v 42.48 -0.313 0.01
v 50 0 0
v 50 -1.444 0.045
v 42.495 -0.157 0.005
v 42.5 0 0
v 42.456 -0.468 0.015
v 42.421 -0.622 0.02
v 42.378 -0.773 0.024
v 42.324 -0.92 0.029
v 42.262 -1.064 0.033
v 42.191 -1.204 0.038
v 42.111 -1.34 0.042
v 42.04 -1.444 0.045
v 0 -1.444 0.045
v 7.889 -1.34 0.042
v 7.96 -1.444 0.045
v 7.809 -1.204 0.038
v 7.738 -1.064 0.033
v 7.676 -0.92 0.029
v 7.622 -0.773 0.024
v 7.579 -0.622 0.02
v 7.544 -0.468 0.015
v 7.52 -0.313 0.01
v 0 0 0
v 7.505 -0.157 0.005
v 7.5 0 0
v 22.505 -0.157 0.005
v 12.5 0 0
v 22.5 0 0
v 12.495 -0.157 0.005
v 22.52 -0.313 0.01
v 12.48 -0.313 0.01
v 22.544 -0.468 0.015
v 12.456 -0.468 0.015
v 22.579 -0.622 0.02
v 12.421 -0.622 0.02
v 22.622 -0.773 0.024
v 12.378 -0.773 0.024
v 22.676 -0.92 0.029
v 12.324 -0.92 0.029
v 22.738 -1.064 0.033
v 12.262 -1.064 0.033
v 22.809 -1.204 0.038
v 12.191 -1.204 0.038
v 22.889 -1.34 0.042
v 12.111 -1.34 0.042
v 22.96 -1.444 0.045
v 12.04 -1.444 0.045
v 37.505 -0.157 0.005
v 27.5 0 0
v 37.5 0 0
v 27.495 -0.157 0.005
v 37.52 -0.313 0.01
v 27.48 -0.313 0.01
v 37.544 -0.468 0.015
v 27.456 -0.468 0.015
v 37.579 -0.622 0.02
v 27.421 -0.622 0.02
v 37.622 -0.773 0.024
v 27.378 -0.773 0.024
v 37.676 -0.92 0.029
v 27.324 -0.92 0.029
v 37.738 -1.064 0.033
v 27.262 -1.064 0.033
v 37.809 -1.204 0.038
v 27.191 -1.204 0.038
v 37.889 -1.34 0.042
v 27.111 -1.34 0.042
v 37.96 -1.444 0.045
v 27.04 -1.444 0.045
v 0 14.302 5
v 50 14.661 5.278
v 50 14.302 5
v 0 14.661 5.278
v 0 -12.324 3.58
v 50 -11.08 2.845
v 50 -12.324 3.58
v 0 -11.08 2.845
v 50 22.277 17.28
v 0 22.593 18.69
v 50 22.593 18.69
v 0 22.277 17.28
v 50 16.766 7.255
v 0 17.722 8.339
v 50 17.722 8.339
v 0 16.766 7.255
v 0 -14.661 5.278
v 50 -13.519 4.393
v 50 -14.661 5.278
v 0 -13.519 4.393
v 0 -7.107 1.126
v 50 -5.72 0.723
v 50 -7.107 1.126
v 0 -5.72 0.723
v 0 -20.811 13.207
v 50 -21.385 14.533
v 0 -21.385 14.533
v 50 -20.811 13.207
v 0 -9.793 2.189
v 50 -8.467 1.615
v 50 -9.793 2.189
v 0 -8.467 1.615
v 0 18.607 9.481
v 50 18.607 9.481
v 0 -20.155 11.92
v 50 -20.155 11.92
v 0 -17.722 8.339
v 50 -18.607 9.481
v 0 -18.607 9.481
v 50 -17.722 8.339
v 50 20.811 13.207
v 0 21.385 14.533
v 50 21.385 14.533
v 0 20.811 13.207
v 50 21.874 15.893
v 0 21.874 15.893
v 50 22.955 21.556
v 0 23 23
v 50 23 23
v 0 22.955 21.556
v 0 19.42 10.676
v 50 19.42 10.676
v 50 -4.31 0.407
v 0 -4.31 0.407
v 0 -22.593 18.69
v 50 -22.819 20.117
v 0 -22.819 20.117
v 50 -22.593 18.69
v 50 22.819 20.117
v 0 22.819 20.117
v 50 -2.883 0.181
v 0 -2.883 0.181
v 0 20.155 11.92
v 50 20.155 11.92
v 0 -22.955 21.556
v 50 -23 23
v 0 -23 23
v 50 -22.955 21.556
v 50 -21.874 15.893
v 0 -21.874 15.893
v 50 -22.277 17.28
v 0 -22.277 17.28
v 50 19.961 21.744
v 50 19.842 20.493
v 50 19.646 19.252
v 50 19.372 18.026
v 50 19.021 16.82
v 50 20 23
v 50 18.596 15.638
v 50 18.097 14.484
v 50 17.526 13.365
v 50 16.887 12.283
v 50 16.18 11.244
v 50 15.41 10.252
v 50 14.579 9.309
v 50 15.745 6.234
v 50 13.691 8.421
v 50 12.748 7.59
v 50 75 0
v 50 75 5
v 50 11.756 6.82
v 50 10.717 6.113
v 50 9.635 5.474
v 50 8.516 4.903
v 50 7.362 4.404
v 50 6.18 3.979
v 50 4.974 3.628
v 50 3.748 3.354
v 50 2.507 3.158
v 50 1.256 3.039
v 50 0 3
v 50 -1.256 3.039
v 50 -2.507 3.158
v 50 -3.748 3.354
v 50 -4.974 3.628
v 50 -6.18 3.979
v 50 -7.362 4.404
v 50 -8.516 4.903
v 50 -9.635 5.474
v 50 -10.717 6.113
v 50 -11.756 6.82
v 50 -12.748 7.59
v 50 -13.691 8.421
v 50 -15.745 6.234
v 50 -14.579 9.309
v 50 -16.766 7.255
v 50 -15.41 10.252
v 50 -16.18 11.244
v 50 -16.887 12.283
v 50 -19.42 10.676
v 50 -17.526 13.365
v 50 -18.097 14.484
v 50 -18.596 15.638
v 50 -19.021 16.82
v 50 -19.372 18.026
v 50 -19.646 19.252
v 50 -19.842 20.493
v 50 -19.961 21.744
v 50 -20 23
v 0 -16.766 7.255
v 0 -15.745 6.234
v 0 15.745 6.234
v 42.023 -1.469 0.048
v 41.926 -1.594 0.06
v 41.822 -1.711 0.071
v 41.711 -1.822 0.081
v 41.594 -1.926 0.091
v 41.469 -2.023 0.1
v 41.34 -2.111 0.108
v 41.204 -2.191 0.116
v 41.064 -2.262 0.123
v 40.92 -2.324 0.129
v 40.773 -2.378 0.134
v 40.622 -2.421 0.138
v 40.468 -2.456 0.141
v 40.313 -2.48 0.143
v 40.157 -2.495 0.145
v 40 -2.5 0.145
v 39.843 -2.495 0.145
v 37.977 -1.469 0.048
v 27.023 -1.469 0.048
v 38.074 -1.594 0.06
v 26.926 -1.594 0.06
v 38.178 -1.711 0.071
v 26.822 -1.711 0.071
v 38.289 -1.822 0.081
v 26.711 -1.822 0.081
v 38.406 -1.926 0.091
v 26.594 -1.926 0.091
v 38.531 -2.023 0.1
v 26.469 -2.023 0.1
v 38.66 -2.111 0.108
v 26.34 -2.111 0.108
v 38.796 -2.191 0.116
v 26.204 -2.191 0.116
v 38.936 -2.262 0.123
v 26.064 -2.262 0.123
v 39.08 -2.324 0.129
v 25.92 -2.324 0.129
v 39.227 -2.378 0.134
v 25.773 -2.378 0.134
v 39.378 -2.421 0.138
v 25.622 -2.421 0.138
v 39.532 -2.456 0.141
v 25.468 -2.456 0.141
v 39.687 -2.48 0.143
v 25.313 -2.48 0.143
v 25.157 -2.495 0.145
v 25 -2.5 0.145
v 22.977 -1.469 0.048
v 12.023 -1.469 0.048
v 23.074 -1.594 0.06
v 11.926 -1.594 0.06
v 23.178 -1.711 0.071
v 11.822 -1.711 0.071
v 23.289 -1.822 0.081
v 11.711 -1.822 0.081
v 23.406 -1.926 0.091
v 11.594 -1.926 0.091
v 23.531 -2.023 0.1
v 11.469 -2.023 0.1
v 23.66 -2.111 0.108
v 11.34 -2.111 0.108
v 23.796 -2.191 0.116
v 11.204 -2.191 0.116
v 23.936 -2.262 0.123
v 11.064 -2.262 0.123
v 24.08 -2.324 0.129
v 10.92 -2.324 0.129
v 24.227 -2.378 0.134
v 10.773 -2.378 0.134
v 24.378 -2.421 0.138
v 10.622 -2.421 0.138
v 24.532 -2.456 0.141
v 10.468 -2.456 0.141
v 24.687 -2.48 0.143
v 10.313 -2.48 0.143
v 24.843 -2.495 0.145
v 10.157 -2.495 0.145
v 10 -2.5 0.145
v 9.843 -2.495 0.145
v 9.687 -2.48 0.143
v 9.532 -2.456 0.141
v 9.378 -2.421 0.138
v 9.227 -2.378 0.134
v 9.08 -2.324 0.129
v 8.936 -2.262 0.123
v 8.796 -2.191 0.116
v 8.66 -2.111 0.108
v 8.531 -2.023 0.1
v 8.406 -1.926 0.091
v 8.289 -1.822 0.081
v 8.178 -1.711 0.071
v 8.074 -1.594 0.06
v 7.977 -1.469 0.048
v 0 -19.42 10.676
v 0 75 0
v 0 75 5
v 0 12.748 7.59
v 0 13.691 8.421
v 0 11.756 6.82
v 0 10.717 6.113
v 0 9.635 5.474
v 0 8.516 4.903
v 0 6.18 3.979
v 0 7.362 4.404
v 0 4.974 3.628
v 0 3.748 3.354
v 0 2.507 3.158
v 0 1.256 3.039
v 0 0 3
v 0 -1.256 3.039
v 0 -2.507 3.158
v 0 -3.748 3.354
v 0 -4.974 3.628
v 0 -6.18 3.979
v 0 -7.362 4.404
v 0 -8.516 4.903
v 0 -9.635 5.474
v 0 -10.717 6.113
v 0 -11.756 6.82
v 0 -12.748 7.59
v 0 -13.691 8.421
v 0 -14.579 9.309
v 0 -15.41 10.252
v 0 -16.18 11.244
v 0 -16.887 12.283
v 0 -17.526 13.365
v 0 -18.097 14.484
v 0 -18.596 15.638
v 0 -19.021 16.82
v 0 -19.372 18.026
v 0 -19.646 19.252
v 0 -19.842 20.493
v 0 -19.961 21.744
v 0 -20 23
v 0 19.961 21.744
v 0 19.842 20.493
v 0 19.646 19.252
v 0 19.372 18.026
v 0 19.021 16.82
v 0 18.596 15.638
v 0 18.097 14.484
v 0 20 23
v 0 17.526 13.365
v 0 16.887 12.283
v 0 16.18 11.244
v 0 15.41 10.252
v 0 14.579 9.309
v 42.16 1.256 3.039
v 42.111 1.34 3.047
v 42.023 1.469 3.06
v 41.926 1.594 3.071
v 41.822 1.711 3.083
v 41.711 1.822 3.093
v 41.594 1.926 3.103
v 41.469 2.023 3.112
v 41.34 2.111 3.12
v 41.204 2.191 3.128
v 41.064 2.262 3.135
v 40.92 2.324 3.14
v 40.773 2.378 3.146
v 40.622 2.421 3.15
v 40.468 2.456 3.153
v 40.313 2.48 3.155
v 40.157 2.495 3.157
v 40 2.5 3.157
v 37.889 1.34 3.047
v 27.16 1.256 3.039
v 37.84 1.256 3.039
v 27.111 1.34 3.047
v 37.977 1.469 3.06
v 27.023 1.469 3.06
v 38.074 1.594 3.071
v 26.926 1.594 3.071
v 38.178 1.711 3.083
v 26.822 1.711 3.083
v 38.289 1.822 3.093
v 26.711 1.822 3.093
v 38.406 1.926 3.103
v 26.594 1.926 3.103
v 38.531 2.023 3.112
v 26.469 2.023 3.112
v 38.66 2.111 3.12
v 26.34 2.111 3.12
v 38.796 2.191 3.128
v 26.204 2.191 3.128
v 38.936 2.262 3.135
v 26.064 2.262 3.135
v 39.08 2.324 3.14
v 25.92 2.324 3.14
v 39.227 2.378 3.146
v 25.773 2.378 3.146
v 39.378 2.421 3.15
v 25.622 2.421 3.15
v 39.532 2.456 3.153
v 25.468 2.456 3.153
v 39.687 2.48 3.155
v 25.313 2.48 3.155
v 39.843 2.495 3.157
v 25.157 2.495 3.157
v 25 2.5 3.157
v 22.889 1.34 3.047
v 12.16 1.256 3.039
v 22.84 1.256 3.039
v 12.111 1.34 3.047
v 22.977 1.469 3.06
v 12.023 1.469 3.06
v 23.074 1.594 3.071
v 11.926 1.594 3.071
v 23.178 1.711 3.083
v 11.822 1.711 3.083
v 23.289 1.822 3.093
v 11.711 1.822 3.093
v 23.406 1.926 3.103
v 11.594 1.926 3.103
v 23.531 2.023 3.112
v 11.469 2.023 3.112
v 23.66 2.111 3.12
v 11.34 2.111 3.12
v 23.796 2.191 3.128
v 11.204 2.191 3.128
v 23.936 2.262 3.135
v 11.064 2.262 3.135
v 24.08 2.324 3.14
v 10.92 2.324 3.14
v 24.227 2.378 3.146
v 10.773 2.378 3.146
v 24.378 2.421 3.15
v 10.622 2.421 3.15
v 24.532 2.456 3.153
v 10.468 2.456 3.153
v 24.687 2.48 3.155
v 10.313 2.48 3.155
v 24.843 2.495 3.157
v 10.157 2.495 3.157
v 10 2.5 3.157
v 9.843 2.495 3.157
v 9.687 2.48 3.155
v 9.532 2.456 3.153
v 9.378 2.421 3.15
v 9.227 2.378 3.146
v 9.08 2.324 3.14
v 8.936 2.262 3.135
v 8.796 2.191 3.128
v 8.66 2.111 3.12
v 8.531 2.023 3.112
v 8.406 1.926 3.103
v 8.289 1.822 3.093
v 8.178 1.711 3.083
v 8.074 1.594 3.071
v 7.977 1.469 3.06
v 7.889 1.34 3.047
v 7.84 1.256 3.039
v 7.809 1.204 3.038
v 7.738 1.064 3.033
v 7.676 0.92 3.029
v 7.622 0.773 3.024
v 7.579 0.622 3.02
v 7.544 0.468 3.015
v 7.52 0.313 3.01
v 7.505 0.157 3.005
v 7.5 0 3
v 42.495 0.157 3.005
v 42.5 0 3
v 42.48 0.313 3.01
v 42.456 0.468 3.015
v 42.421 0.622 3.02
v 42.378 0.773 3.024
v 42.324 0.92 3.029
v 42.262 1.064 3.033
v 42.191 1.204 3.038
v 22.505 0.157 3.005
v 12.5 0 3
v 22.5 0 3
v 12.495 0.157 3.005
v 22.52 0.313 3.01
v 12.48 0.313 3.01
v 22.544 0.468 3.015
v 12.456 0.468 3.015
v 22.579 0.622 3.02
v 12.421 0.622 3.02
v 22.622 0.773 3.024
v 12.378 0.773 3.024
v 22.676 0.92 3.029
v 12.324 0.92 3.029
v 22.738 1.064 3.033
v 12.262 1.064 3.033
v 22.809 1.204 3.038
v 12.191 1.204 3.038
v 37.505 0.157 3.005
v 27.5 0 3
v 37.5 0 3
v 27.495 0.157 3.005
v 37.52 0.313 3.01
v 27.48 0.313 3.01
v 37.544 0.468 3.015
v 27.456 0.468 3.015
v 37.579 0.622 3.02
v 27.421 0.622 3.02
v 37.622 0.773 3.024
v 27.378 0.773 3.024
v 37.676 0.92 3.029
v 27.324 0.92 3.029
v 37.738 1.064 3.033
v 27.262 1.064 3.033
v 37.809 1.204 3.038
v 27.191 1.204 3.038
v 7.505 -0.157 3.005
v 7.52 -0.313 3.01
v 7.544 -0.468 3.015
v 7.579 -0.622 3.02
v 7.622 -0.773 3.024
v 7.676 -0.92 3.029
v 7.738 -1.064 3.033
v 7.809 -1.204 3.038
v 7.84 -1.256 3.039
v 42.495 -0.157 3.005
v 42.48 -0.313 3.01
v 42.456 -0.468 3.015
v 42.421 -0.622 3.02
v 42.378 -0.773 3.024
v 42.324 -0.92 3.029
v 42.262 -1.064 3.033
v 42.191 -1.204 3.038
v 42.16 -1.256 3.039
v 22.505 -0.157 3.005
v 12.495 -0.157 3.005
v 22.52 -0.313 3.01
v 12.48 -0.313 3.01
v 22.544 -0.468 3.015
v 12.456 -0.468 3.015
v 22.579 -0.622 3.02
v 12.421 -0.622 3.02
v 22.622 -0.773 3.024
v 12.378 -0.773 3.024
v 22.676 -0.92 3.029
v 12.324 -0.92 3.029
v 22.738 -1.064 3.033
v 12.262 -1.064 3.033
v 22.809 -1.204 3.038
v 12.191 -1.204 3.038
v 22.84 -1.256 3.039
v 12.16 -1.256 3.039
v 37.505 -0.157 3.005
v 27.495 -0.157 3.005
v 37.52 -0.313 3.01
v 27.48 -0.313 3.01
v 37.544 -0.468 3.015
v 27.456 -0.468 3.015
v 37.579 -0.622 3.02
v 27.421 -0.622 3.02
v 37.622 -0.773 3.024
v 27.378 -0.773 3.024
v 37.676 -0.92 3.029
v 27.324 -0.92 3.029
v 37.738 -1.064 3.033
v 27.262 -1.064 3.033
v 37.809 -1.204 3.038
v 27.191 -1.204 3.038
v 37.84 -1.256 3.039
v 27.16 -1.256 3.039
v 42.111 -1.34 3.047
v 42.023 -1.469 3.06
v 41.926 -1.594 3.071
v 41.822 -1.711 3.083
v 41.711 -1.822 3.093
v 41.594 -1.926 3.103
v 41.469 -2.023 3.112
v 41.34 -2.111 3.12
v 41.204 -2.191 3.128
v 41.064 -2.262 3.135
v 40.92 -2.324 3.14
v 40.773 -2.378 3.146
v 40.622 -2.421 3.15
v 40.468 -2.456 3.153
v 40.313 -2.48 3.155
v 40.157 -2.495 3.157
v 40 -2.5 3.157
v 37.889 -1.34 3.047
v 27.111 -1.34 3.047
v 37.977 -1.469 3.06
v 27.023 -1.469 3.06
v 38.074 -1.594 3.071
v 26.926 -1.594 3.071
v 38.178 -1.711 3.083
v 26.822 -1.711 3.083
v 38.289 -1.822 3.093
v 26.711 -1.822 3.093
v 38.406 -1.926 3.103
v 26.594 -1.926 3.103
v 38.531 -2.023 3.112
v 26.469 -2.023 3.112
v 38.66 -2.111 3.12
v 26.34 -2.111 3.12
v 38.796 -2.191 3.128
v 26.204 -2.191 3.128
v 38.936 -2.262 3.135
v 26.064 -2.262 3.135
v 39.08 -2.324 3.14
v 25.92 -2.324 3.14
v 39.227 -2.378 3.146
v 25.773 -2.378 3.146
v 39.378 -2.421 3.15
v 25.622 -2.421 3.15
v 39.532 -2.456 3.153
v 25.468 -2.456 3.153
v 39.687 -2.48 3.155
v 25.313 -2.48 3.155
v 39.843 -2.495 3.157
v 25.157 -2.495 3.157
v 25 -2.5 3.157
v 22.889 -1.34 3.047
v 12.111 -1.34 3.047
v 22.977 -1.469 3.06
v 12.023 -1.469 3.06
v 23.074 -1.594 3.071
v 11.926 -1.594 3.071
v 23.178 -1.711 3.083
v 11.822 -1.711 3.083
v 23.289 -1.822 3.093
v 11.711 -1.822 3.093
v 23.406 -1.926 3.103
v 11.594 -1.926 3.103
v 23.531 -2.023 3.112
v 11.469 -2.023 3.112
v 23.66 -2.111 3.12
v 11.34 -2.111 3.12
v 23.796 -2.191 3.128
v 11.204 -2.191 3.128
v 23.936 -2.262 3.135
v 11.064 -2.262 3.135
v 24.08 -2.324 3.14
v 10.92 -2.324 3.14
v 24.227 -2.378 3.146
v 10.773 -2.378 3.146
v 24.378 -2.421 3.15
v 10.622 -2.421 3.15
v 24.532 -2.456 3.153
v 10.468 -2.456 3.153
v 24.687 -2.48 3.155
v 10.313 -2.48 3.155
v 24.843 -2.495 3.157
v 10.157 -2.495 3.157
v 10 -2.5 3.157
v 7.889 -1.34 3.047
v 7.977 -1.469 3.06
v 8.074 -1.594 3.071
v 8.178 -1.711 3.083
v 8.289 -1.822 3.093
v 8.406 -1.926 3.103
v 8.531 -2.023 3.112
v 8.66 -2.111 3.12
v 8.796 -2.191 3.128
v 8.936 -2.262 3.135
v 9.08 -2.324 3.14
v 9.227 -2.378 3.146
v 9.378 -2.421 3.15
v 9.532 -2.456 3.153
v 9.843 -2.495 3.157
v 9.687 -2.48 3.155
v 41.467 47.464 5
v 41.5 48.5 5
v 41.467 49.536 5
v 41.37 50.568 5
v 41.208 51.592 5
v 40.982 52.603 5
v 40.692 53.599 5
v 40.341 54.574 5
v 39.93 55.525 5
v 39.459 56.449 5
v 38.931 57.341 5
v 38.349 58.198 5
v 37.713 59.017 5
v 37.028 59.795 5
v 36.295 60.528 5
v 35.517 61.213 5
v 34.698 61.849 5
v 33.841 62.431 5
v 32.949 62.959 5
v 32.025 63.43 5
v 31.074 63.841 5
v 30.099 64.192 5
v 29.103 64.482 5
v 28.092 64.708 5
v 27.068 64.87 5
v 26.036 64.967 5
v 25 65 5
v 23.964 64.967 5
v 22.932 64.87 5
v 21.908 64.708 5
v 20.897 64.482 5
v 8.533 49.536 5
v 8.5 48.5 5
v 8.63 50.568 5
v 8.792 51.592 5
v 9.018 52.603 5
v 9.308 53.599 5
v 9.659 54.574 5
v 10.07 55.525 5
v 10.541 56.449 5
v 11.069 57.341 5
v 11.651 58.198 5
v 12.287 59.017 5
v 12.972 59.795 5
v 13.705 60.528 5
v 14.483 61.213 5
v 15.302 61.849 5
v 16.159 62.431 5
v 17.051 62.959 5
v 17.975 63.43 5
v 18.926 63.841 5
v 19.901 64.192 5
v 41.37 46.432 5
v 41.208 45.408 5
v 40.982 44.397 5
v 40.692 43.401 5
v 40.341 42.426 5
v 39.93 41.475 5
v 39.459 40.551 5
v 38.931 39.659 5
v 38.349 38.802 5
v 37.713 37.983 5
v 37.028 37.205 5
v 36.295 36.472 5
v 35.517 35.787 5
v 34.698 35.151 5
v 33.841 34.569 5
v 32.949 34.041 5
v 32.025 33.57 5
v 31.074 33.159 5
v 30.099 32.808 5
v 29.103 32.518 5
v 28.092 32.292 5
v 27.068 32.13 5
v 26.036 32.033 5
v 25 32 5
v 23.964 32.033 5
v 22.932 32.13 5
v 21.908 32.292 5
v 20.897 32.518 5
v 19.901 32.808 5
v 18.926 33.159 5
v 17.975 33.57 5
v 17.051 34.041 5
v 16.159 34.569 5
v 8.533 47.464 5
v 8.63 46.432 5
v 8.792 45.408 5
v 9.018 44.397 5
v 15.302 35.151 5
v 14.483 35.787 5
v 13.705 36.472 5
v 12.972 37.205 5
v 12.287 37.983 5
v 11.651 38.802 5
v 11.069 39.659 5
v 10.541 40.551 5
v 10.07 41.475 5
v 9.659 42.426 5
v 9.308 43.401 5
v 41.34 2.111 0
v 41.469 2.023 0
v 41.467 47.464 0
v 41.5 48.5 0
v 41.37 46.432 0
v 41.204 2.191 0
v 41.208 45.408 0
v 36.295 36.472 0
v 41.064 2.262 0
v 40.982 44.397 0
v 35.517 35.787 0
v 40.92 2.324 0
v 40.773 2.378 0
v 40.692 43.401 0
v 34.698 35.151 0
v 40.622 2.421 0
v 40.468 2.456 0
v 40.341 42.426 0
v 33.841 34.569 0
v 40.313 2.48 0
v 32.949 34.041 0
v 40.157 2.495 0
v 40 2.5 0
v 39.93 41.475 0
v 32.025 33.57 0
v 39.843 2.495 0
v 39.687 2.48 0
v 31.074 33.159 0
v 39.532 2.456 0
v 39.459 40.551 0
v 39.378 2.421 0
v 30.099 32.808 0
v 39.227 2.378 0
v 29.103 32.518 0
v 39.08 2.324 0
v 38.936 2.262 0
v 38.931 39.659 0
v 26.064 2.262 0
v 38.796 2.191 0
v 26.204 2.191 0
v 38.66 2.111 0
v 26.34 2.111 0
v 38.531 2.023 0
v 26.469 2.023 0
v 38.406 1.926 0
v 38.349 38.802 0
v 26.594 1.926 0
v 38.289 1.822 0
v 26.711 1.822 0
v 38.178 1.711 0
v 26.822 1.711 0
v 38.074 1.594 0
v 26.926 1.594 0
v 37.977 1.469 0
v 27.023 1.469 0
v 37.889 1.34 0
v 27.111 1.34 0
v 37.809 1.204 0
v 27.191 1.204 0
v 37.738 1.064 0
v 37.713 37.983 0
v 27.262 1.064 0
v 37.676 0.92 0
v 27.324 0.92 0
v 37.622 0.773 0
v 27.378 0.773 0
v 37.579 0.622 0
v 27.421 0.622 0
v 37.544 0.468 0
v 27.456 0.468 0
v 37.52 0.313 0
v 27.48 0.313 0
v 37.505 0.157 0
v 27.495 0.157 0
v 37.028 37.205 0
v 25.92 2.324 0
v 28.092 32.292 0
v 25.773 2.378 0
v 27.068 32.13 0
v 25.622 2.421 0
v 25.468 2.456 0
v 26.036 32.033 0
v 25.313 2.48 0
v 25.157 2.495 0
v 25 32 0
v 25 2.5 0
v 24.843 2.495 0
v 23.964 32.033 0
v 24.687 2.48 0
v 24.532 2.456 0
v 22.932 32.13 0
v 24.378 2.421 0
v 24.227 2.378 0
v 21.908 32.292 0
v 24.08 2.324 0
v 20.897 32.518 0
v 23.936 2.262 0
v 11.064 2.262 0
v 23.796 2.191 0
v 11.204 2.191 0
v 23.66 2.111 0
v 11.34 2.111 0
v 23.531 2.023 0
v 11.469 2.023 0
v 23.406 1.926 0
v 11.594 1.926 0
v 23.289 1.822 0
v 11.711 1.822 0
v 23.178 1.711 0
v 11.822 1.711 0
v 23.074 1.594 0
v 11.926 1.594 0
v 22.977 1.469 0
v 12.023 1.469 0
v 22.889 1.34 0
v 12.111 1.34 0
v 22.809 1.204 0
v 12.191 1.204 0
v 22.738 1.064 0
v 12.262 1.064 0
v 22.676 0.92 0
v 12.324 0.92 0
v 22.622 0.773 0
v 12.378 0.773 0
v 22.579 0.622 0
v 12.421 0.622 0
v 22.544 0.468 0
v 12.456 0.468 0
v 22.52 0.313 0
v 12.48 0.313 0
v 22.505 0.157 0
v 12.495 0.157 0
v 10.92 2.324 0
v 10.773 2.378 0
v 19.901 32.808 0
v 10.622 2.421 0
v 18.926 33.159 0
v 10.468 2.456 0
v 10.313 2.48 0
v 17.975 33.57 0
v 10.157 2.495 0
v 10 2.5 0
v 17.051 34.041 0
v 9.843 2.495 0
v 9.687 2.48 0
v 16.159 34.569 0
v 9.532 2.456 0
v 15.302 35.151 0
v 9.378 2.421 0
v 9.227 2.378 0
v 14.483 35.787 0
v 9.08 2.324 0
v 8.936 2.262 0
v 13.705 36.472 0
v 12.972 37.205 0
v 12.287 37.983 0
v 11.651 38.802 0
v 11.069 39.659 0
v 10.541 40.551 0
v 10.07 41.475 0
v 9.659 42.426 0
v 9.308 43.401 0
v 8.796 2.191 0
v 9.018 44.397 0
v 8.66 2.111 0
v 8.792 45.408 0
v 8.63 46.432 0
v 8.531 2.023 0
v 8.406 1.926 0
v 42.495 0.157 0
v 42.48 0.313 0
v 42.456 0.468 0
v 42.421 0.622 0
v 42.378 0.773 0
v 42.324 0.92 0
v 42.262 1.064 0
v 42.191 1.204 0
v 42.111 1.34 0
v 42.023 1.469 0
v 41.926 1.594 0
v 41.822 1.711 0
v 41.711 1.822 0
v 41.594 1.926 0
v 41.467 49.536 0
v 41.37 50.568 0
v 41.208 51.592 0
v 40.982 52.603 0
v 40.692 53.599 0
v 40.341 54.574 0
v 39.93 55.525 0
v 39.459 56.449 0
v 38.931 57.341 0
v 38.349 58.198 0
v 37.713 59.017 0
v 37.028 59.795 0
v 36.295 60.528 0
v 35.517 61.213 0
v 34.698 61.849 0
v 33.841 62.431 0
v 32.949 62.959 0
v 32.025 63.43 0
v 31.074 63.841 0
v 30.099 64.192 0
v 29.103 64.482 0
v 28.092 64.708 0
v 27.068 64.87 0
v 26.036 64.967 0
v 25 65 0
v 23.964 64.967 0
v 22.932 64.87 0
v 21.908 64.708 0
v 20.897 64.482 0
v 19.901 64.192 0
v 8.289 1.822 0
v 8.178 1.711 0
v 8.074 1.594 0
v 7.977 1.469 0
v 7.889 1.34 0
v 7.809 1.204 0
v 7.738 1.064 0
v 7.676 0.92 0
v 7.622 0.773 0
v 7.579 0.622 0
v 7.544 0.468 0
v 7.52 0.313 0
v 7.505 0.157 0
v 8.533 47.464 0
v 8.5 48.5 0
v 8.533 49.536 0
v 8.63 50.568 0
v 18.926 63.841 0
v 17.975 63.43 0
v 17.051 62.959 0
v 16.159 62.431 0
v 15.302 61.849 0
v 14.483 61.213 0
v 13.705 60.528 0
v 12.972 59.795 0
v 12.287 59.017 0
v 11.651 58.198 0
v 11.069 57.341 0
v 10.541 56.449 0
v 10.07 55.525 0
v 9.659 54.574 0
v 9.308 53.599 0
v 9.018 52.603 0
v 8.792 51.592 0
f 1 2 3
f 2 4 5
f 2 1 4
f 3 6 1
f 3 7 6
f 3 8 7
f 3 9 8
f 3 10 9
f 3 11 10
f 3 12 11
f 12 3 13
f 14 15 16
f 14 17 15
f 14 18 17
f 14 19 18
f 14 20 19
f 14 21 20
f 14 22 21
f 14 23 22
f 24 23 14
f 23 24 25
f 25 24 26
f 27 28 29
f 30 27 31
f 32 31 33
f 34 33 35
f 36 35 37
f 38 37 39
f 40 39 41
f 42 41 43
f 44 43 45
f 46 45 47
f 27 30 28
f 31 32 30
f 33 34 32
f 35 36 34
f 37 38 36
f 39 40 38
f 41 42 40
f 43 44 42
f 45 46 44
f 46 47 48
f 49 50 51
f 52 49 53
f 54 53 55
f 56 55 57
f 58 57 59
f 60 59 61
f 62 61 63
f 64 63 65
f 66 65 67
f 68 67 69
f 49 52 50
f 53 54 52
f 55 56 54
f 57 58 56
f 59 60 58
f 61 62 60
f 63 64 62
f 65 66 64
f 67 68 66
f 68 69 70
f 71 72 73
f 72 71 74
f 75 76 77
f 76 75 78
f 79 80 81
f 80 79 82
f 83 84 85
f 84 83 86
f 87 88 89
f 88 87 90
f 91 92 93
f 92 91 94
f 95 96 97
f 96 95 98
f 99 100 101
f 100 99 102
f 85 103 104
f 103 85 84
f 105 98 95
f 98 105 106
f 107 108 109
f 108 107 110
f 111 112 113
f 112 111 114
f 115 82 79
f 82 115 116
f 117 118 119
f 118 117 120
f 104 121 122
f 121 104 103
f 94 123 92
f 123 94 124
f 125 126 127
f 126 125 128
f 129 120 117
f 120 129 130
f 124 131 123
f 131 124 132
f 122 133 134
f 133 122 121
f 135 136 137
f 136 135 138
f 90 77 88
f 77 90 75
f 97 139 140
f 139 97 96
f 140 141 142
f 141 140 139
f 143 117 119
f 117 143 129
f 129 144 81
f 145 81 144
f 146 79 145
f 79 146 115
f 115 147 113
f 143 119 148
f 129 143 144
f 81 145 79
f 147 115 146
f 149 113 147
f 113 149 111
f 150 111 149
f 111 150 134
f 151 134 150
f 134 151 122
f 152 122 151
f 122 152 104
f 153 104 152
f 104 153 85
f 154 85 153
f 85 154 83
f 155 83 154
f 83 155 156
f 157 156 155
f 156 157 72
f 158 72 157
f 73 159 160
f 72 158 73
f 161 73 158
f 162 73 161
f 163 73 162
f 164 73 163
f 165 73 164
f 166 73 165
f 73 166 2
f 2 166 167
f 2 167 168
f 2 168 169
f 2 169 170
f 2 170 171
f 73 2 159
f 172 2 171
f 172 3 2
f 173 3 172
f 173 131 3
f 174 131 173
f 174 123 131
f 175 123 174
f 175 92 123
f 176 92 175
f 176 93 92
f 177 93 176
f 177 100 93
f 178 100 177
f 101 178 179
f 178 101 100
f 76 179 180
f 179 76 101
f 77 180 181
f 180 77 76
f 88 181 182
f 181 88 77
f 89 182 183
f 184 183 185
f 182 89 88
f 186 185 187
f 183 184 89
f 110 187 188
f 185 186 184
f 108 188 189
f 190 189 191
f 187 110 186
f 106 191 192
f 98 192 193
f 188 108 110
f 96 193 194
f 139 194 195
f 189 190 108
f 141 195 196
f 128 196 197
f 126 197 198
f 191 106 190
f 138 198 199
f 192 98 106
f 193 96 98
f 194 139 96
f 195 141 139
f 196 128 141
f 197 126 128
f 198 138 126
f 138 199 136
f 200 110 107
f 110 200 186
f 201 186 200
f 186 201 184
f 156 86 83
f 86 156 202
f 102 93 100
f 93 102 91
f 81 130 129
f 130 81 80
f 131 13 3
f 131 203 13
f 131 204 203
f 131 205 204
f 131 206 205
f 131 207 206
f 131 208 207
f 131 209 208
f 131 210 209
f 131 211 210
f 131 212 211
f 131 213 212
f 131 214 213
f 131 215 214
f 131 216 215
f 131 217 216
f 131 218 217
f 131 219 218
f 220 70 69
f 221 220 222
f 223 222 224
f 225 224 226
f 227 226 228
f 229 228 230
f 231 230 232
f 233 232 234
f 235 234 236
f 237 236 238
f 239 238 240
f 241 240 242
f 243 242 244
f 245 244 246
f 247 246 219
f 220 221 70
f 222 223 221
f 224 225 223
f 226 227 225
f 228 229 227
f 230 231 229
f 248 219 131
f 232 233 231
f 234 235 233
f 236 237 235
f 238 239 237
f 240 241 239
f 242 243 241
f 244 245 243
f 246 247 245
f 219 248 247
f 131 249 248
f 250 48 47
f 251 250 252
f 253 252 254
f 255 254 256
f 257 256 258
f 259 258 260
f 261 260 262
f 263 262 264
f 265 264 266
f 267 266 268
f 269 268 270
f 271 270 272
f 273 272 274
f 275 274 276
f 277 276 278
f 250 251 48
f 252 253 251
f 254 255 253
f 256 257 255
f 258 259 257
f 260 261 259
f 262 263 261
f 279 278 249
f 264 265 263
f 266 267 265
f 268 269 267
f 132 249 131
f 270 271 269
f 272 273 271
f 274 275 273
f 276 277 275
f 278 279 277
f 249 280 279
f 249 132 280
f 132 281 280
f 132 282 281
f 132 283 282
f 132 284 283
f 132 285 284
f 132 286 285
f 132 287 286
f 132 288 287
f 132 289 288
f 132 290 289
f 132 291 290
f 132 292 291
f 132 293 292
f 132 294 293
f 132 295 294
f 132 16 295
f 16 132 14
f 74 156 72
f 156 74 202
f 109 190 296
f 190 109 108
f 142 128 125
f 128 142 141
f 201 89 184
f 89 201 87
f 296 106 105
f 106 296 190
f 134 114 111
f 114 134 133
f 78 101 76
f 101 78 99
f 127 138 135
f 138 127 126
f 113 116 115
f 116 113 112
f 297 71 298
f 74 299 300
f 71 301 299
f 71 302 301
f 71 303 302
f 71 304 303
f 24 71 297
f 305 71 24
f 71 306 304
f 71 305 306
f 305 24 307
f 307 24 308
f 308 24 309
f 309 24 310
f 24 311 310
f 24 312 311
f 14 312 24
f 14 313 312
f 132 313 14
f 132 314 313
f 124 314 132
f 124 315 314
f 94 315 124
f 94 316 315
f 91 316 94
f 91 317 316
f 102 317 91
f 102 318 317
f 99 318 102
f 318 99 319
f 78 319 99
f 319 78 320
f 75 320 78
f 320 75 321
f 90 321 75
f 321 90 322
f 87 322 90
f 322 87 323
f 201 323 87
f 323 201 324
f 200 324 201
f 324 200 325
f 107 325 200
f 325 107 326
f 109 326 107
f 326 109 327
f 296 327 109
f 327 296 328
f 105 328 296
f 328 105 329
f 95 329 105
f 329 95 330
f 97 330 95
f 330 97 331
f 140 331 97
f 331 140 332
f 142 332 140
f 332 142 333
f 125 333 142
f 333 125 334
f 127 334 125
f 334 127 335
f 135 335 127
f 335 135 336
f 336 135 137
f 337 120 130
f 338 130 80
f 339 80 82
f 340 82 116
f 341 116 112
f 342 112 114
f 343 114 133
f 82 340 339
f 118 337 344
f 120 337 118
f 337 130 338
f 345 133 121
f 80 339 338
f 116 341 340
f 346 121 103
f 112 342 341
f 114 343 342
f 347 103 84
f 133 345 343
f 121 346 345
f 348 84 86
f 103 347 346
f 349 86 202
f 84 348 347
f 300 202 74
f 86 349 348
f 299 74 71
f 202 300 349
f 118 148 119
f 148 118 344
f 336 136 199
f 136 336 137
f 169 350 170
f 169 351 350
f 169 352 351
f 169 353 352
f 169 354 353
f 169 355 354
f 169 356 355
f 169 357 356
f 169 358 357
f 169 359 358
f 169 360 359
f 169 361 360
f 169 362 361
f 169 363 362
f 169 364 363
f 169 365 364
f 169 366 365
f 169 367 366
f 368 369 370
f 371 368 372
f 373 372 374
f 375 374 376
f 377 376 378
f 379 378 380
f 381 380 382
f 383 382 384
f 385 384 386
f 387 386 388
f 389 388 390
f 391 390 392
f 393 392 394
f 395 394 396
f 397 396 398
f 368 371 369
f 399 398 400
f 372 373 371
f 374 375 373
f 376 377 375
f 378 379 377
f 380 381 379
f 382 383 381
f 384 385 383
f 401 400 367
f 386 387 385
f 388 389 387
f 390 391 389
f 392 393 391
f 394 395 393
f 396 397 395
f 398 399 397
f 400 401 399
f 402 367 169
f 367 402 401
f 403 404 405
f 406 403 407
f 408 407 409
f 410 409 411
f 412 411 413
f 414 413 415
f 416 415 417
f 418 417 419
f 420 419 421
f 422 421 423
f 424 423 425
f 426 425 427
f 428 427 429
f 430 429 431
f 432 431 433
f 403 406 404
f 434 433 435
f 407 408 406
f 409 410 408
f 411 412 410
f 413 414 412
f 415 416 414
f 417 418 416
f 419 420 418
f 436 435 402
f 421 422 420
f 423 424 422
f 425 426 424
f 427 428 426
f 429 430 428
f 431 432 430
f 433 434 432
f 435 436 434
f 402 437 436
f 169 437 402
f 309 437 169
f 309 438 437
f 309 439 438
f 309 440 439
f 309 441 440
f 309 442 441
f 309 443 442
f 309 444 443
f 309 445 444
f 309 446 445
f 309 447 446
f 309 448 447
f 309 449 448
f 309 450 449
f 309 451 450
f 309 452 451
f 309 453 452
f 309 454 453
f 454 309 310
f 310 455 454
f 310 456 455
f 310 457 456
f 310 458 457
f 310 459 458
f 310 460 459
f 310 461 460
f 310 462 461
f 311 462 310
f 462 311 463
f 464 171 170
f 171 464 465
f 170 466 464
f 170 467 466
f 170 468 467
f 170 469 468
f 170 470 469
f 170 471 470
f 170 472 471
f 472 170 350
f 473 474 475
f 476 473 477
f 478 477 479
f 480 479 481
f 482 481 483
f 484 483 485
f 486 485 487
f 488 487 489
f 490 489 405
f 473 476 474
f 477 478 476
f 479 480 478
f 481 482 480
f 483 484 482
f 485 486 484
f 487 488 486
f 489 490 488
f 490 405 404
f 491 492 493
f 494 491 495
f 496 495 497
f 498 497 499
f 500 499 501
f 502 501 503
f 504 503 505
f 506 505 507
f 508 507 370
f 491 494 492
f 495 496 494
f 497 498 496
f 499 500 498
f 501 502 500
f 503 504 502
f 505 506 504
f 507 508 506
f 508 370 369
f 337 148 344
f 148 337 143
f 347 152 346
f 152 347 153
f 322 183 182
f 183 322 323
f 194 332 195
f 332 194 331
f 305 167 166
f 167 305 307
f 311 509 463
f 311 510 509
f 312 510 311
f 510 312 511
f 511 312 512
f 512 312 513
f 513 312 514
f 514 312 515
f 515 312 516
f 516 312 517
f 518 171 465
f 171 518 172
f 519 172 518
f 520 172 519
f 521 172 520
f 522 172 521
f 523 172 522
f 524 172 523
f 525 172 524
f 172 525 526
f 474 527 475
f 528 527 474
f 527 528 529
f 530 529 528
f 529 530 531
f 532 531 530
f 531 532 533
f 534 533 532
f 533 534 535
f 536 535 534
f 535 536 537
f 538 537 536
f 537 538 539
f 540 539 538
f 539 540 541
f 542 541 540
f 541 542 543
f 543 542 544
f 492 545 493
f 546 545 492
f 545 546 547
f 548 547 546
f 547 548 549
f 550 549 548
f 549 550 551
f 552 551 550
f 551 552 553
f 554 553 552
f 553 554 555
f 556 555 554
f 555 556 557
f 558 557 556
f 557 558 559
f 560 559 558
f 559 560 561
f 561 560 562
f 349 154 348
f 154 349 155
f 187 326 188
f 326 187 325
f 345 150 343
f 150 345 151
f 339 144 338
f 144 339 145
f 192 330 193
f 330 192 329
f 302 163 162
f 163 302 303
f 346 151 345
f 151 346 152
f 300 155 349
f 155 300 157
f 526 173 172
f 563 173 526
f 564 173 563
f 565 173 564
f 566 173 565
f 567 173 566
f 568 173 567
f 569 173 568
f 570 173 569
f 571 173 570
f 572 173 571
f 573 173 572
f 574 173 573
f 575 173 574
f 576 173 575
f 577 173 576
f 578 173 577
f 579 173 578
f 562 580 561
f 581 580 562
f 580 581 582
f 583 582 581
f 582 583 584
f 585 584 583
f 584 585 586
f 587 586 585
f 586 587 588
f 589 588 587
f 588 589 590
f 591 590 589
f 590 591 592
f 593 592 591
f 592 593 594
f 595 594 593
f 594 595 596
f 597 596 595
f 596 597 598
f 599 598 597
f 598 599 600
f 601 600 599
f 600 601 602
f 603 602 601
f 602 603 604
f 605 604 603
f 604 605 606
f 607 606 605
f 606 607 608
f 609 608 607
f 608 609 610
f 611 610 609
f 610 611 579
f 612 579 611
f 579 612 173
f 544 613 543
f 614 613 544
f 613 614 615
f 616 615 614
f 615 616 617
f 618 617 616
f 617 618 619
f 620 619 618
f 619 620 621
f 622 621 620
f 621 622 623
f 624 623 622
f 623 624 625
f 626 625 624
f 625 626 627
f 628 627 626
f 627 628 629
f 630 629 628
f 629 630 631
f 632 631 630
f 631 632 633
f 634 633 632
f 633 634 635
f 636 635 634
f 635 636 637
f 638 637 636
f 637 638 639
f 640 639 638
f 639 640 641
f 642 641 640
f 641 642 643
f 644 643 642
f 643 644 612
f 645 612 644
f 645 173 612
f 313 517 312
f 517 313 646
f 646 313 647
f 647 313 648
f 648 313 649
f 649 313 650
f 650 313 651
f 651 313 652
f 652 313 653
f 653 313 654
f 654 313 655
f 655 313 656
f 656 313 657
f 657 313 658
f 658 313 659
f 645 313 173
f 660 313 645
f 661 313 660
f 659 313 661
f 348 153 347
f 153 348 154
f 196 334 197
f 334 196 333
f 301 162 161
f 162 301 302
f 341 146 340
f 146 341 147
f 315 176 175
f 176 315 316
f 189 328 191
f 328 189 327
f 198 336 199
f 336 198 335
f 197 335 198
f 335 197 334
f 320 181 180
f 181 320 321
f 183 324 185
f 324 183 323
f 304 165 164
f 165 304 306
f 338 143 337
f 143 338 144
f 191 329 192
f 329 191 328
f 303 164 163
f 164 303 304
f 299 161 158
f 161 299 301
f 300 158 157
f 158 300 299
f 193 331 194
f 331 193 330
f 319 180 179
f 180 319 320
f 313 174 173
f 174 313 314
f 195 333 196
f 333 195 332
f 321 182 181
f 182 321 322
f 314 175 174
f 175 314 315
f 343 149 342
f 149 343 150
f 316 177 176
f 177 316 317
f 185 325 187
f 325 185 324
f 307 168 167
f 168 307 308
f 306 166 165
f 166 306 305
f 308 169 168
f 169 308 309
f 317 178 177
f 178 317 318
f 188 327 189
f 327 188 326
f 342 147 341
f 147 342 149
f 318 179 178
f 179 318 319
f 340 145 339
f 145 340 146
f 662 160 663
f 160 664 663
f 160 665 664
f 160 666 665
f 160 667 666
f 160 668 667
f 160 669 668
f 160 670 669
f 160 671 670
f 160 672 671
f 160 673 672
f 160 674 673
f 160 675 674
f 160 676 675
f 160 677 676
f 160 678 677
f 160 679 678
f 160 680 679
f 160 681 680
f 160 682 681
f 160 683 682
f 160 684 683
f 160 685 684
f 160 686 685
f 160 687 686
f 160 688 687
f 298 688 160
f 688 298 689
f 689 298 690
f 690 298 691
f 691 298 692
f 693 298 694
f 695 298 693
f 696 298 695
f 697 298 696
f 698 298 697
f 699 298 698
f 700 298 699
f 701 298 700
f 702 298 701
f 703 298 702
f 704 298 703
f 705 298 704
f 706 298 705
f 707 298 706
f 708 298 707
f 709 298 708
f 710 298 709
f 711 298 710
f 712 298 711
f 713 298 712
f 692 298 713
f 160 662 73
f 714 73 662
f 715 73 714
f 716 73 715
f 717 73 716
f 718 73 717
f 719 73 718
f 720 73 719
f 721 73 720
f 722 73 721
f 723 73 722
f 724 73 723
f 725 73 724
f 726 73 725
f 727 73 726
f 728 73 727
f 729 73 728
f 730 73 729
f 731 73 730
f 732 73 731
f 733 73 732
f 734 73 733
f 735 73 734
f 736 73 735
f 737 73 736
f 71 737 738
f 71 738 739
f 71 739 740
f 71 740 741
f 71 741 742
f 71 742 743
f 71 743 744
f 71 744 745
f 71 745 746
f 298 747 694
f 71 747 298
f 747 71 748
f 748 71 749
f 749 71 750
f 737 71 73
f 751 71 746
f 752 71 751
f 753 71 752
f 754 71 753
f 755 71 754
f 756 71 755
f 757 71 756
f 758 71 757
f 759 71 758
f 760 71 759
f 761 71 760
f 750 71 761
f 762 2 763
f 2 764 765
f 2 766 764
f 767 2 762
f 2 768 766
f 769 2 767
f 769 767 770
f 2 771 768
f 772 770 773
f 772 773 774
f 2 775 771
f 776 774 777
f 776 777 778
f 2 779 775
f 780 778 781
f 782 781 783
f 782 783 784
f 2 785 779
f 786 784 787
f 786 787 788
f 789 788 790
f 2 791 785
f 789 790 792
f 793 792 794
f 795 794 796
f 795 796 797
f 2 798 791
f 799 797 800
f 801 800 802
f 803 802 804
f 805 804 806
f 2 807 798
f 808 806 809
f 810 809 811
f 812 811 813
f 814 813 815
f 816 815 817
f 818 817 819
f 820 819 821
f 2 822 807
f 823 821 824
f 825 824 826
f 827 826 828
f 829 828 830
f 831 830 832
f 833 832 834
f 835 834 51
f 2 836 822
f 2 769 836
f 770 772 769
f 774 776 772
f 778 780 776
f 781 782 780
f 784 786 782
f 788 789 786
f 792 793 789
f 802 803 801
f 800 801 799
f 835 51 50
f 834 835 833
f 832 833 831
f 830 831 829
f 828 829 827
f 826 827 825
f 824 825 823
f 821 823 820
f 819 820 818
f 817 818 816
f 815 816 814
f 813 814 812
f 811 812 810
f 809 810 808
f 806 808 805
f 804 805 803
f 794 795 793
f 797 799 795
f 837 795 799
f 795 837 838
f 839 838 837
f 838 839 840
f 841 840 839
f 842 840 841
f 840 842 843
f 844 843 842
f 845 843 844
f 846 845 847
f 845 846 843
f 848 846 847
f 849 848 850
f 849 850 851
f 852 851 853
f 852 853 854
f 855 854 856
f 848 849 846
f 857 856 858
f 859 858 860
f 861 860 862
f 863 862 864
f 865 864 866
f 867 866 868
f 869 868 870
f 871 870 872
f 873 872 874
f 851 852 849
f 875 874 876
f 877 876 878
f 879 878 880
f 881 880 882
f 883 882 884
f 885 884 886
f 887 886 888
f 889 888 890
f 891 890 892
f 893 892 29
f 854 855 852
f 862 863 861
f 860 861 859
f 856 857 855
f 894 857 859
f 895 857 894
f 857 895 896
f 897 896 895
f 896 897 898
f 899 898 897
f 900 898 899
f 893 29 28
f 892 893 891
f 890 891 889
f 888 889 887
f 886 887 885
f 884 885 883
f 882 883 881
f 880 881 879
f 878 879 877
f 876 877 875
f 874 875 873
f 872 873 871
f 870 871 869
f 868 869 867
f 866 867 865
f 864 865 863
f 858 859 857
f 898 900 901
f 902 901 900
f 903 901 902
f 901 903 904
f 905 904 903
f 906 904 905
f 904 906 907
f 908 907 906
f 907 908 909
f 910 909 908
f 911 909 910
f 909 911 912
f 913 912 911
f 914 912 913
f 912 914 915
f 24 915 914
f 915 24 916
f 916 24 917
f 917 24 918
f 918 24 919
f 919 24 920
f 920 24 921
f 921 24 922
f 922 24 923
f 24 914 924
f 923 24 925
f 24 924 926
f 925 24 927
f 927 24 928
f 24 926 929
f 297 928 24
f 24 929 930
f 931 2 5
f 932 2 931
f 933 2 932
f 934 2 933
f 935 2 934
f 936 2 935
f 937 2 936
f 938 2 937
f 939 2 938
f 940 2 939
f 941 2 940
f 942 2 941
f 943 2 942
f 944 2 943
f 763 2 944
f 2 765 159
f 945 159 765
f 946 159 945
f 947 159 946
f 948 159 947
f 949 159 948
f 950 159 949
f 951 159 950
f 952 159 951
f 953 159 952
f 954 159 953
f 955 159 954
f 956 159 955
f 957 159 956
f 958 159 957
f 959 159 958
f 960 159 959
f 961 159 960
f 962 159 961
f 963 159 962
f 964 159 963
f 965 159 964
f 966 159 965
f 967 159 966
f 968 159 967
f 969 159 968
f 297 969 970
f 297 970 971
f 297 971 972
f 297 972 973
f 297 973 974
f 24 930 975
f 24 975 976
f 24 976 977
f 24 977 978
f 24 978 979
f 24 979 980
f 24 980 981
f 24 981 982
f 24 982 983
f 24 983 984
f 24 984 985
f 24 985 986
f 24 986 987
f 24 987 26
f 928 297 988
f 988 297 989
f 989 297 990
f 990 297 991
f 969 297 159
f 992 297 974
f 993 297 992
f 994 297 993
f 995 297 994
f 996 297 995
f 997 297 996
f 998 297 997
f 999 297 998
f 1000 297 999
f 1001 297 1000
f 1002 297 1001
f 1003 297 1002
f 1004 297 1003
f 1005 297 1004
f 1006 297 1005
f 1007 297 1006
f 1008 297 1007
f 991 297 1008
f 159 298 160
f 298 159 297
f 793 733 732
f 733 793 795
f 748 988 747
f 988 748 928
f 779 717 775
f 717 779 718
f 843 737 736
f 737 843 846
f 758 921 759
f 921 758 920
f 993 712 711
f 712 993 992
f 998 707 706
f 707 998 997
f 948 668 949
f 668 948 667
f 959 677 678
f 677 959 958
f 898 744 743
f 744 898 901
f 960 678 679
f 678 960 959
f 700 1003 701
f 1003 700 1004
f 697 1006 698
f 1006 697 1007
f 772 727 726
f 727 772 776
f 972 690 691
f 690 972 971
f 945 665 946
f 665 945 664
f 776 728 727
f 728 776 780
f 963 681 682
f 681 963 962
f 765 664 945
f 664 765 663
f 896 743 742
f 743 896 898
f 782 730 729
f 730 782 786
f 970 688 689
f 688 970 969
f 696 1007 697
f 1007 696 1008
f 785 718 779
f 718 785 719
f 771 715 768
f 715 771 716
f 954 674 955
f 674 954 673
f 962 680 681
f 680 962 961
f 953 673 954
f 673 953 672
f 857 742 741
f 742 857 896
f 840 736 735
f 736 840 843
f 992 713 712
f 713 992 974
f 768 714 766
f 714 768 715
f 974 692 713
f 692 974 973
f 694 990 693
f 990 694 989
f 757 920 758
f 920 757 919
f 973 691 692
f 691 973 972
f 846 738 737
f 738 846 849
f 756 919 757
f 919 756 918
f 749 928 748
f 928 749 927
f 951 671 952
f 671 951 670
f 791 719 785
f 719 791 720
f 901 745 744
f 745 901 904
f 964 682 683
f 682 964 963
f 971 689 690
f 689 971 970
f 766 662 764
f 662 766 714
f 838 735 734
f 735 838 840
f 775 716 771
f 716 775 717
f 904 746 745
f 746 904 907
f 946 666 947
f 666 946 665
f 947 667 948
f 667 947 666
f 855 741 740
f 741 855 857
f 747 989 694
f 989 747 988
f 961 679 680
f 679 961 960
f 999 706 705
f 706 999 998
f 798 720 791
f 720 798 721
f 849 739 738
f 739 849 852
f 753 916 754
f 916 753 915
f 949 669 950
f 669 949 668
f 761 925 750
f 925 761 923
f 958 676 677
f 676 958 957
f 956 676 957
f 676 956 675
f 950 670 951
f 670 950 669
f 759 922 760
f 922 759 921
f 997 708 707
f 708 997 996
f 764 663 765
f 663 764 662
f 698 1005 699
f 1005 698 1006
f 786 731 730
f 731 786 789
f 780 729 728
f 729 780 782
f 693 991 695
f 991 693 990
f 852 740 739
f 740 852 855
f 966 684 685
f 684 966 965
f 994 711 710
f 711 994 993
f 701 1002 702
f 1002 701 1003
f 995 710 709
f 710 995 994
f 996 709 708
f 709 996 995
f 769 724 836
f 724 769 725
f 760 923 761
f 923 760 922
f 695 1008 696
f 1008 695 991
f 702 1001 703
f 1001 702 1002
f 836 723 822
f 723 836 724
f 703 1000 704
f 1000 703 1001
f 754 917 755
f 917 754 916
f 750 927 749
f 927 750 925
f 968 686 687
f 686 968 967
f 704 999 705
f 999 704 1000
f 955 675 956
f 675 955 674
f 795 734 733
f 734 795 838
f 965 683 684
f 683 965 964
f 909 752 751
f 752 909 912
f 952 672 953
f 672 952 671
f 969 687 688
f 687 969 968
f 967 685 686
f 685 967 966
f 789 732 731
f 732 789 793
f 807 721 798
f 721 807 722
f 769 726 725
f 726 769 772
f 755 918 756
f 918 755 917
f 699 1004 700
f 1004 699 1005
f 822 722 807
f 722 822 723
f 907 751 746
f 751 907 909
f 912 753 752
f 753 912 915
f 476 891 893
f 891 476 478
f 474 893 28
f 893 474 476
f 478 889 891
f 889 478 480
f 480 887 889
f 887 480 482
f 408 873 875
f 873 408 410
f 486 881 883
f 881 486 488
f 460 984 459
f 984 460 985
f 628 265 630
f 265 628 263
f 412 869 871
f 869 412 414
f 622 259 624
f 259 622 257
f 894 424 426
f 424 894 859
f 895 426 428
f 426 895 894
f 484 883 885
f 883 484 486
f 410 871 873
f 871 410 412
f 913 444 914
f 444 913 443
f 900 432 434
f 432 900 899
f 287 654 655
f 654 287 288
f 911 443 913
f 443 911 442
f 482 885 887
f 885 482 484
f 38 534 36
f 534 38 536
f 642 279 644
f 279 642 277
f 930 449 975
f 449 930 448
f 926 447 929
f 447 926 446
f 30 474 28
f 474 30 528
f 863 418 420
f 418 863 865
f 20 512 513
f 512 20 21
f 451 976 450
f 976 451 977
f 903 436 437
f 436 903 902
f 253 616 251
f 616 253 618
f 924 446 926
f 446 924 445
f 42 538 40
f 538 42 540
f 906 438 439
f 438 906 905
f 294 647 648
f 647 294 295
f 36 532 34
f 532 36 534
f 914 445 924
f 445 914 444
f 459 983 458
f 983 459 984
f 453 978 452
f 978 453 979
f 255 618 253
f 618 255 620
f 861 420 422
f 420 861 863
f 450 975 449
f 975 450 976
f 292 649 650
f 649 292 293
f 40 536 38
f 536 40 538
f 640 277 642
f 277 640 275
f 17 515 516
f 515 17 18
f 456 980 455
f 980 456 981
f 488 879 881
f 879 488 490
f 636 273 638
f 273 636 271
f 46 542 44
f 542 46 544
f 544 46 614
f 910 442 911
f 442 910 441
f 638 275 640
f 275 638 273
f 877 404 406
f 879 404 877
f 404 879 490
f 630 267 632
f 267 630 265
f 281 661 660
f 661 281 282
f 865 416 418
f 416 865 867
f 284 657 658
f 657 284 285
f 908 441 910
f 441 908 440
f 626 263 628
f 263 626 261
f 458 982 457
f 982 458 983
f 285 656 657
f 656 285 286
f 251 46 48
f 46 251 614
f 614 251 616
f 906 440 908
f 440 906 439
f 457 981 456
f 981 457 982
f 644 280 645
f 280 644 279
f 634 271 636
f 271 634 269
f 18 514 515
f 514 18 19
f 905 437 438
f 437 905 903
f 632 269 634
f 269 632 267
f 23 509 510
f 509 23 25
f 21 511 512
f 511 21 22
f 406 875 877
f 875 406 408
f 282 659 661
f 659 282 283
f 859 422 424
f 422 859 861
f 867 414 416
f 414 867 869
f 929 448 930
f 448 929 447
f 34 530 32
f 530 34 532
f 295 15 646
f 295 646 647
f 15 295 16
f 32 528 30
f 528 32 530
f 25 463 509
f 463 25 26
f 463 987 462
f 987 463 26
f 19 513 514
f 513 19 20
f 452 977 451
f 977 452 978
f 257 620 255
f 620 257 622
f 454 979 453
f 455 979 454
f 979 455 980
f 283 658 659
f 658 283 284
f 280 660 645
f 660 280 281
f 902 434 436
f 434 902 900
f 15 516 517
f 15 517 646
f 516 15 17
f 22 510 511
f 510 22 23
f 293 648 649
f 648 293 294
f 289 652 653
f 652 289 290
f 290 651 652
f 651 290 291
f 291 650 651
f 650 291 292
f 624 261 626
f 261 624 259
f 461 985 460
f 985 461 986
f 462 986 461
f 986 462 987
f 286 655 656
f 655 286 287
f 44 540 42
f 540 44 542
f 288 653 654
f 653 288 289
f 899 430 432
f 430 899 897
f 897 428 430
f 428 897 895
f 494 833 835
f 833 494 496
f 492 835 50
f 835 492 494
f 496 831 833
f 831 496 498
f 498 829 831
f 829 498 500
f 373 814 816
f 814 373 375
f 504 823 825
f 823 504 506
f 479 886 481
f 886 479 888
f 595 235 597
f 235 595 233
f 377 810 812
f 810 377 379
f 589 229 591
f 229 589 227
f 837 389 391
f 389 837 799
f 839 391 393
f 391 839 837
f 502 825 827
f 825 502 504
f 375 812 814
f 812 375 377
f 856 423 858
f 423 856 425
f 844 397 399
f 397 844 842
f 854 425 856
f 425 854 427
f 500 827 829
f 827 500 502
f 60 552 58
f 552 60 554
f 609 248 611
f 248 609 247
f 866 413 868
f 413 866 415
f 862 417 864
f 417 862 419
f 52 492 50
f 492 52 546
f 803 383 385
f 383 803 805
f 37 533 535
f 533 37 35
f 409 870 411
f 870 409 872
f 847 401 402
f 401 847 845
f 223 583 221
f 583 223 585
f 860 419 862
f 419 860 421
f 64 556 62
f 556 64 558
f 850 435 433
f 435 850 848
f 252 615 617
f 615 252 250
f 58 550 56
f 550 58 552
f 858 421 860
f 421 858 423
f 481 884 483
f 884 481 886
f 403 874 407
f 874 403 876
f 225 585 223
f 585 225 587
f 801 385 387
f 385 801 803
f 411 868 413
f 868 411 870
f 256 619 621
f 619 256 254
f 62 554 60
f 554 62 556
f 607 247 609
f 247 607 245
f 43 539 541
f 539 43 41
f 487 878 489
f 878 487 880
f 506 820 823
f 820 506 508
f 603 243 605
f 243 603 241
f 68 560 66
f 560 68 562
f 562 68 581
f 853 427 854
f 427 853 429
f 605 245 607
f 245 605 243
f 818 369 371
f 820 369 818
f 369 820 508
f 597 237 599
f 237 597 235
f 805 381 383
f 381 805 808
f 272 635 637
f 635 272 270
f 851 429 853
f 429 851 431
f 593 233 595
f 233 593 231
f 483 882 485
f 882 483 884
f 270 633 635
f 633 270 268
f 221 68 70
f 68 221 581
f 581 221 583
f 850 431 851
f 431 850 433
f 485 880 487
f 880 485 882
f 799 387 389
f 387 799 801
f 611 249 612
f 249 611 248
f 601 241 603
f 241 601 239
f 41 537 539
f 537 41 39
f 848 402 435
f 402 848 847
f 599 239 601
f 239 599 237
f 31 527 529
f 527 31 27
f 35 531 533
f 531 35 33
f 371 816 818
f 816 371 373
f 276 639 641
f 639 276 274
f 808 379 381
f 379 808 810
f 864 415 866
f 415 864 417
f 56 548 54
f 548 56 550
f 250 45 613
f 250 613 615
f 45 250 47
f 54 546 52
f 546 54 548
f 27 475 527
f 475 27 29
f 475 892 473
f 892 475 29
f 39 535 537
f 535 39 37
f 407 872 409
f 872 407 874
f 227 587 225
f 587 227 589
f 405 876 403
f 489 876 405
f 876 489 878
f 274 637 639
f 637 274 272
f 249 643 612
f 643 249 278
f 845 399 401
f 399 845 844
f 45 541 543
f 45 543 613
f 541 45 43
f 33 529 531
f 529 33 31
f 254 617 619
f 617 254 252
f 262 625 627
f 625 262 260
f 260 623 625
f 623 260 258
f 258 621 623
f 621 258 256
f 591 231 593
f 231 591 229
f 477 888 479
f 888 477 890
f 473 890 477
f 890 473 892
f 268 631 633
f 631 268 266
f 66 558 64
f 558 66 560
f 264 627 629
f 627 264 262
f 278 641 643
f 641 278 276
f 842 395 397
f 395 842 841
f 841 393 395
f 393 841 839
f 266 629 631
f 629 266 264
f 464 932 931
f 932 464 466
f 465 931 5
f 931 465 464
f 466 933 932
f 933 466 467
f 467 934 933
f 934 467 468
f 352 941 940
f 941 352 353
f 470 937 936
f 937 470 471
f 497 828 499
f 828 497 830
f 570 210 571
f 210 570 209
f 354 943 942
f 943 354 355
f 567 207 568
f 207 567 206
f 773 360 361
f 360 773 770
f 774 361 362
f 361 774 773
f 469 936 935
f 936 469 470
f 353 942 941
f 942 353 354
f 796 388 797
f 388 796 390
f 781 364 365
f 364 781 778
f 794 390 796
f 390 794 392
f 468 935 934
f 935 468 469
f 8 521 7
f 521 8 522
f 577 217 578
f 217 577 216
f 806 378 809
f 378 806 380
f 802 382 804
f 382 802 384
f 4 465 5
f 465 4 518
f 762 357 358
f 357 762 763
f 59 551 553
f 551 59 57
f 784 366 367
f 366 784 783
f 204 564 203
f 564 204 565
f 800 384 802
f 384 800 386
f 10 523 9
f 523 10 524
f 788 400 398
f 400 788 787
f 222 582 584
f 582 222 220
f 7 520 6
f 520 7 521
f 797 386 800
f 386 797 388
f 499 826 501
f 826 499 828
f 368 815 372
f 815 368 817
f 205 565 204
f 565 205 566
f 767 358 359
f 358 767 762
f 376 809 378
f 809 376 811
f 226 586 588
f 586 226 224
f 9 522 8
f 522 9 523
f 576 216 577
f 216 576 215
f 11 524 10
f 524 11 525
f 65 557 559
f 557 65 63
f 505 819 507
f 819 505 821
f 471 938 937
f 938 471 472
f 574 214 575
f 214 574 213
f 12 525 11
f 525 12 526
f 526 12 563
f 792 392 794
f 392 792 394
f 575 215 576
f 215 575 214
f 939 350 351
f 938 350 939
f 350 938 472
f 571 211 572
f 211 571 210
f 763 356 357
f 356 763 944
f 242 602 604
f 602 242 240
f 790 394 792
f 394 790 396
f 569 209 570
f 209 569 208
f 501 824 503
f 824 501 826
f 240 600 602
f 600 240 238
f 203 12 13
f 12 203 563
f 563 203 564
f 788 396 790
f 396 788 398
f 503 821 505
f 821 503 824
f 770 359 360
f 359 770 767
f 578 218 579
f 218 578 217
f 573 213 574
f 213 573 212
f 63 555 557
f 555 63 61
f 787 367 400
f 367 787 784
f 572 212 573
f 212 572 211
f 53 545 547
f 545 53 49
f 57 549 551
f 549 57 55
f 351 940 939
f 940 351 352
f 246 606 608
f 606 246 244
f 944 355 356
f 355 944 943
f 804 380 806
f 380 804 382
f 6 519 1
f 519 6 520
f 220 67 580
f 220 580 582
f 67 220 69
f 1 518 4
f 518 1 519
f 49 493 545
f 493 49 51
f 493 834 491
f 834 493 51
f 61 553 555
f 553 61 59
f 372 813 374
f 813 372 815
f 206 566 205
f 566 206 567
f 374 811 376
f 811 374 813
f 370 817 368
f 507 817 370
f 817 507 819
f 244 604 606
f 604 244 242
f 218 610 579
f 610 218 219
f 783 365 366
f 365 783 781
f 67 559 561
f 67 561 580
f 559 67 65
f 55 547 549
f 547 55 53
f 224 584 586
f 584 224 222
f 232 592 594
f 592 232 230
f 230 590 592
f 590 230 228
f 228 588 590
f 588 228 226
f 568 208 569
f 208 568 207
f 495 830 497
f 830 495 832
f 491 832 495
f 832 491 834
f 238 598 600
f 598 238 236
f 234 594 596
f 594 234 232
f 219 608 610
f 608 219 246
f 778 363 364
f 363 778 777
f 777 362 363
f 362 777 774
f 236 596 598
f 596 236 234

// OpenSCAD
// Main variables
width = 50;          // X axis
length = 75;        // Y axis
base_height = 5;     // Z axis for the base rectangle

inner_radius = 20;
wall_thickness = 3;  // Thickness of the semicylinder wall
outer_radius = inner_radius + wall_thickness;   // 40mm diameter / 2

hole_diameter = 33;
edge_distance = 10;

hole_center_x = width / 2;
hole_center_y = length - (edge_distance + (hole_diameter/2));
hole_center_z = wall_thickness ;

screw_dist_edge = 10;
screw_d = 5;
difference() {
    union() {
        // Main rectangle
        cube([width, length, base_height]);
        
        // Outer semicylinder
        translate([0, 0, outer_radius])  // Position at middle of length
            rotate([0, 90, 0])                // Rotate to align with X axis
            difference() {
                cylinder(h=width, r=outer_radius, $fn=100);  // Full cylinder
                // Cut cylinder in half
                translate([-outer_radius, -outer_radius, -1])
                    cube([outer_radius, outer_radius * 2, width + 2]);
            }
    }
    
    // Hollow out the inside of the semicylinder
    
    translate([0, 0, outer_radius])  // Position at middle of length
        rotate([0, 90, 0])                // Rotate to align with X axis
        difference() {
            cylinder(h=width + 2, r=inner_radius, $fn=100);  // Full cylinder
            // Cut cylinder in half
            translate([-inner_radius, -inner_radius, -1])
                cube([inner_radius, inner_radius, width + 4]);
        }
       
    translate([hole_center_x, hole_center_y, hole_center_z])
        cylinder(h = base_height + 2, d = hole_diameter, center = true, $fn=100); 

    // screw 1
    translate([screw_dist_edge, 0, hole_center_z])
        cylinder(h = base_height + 2, d = screw_d, center = true, $fn=100); 
    //screw 2
    translate([width / 2, 0, hole_center_z])
        cylinder(h = base_height + 2, d = screw_d, center = true, $fn=100); 

    //screw 3
    translate([width - screw_dist_edge, 0, hole_center_z])
        cylinder(h = base_height + 2, d = screw_d, center = true, $fn=100); 
        
}
